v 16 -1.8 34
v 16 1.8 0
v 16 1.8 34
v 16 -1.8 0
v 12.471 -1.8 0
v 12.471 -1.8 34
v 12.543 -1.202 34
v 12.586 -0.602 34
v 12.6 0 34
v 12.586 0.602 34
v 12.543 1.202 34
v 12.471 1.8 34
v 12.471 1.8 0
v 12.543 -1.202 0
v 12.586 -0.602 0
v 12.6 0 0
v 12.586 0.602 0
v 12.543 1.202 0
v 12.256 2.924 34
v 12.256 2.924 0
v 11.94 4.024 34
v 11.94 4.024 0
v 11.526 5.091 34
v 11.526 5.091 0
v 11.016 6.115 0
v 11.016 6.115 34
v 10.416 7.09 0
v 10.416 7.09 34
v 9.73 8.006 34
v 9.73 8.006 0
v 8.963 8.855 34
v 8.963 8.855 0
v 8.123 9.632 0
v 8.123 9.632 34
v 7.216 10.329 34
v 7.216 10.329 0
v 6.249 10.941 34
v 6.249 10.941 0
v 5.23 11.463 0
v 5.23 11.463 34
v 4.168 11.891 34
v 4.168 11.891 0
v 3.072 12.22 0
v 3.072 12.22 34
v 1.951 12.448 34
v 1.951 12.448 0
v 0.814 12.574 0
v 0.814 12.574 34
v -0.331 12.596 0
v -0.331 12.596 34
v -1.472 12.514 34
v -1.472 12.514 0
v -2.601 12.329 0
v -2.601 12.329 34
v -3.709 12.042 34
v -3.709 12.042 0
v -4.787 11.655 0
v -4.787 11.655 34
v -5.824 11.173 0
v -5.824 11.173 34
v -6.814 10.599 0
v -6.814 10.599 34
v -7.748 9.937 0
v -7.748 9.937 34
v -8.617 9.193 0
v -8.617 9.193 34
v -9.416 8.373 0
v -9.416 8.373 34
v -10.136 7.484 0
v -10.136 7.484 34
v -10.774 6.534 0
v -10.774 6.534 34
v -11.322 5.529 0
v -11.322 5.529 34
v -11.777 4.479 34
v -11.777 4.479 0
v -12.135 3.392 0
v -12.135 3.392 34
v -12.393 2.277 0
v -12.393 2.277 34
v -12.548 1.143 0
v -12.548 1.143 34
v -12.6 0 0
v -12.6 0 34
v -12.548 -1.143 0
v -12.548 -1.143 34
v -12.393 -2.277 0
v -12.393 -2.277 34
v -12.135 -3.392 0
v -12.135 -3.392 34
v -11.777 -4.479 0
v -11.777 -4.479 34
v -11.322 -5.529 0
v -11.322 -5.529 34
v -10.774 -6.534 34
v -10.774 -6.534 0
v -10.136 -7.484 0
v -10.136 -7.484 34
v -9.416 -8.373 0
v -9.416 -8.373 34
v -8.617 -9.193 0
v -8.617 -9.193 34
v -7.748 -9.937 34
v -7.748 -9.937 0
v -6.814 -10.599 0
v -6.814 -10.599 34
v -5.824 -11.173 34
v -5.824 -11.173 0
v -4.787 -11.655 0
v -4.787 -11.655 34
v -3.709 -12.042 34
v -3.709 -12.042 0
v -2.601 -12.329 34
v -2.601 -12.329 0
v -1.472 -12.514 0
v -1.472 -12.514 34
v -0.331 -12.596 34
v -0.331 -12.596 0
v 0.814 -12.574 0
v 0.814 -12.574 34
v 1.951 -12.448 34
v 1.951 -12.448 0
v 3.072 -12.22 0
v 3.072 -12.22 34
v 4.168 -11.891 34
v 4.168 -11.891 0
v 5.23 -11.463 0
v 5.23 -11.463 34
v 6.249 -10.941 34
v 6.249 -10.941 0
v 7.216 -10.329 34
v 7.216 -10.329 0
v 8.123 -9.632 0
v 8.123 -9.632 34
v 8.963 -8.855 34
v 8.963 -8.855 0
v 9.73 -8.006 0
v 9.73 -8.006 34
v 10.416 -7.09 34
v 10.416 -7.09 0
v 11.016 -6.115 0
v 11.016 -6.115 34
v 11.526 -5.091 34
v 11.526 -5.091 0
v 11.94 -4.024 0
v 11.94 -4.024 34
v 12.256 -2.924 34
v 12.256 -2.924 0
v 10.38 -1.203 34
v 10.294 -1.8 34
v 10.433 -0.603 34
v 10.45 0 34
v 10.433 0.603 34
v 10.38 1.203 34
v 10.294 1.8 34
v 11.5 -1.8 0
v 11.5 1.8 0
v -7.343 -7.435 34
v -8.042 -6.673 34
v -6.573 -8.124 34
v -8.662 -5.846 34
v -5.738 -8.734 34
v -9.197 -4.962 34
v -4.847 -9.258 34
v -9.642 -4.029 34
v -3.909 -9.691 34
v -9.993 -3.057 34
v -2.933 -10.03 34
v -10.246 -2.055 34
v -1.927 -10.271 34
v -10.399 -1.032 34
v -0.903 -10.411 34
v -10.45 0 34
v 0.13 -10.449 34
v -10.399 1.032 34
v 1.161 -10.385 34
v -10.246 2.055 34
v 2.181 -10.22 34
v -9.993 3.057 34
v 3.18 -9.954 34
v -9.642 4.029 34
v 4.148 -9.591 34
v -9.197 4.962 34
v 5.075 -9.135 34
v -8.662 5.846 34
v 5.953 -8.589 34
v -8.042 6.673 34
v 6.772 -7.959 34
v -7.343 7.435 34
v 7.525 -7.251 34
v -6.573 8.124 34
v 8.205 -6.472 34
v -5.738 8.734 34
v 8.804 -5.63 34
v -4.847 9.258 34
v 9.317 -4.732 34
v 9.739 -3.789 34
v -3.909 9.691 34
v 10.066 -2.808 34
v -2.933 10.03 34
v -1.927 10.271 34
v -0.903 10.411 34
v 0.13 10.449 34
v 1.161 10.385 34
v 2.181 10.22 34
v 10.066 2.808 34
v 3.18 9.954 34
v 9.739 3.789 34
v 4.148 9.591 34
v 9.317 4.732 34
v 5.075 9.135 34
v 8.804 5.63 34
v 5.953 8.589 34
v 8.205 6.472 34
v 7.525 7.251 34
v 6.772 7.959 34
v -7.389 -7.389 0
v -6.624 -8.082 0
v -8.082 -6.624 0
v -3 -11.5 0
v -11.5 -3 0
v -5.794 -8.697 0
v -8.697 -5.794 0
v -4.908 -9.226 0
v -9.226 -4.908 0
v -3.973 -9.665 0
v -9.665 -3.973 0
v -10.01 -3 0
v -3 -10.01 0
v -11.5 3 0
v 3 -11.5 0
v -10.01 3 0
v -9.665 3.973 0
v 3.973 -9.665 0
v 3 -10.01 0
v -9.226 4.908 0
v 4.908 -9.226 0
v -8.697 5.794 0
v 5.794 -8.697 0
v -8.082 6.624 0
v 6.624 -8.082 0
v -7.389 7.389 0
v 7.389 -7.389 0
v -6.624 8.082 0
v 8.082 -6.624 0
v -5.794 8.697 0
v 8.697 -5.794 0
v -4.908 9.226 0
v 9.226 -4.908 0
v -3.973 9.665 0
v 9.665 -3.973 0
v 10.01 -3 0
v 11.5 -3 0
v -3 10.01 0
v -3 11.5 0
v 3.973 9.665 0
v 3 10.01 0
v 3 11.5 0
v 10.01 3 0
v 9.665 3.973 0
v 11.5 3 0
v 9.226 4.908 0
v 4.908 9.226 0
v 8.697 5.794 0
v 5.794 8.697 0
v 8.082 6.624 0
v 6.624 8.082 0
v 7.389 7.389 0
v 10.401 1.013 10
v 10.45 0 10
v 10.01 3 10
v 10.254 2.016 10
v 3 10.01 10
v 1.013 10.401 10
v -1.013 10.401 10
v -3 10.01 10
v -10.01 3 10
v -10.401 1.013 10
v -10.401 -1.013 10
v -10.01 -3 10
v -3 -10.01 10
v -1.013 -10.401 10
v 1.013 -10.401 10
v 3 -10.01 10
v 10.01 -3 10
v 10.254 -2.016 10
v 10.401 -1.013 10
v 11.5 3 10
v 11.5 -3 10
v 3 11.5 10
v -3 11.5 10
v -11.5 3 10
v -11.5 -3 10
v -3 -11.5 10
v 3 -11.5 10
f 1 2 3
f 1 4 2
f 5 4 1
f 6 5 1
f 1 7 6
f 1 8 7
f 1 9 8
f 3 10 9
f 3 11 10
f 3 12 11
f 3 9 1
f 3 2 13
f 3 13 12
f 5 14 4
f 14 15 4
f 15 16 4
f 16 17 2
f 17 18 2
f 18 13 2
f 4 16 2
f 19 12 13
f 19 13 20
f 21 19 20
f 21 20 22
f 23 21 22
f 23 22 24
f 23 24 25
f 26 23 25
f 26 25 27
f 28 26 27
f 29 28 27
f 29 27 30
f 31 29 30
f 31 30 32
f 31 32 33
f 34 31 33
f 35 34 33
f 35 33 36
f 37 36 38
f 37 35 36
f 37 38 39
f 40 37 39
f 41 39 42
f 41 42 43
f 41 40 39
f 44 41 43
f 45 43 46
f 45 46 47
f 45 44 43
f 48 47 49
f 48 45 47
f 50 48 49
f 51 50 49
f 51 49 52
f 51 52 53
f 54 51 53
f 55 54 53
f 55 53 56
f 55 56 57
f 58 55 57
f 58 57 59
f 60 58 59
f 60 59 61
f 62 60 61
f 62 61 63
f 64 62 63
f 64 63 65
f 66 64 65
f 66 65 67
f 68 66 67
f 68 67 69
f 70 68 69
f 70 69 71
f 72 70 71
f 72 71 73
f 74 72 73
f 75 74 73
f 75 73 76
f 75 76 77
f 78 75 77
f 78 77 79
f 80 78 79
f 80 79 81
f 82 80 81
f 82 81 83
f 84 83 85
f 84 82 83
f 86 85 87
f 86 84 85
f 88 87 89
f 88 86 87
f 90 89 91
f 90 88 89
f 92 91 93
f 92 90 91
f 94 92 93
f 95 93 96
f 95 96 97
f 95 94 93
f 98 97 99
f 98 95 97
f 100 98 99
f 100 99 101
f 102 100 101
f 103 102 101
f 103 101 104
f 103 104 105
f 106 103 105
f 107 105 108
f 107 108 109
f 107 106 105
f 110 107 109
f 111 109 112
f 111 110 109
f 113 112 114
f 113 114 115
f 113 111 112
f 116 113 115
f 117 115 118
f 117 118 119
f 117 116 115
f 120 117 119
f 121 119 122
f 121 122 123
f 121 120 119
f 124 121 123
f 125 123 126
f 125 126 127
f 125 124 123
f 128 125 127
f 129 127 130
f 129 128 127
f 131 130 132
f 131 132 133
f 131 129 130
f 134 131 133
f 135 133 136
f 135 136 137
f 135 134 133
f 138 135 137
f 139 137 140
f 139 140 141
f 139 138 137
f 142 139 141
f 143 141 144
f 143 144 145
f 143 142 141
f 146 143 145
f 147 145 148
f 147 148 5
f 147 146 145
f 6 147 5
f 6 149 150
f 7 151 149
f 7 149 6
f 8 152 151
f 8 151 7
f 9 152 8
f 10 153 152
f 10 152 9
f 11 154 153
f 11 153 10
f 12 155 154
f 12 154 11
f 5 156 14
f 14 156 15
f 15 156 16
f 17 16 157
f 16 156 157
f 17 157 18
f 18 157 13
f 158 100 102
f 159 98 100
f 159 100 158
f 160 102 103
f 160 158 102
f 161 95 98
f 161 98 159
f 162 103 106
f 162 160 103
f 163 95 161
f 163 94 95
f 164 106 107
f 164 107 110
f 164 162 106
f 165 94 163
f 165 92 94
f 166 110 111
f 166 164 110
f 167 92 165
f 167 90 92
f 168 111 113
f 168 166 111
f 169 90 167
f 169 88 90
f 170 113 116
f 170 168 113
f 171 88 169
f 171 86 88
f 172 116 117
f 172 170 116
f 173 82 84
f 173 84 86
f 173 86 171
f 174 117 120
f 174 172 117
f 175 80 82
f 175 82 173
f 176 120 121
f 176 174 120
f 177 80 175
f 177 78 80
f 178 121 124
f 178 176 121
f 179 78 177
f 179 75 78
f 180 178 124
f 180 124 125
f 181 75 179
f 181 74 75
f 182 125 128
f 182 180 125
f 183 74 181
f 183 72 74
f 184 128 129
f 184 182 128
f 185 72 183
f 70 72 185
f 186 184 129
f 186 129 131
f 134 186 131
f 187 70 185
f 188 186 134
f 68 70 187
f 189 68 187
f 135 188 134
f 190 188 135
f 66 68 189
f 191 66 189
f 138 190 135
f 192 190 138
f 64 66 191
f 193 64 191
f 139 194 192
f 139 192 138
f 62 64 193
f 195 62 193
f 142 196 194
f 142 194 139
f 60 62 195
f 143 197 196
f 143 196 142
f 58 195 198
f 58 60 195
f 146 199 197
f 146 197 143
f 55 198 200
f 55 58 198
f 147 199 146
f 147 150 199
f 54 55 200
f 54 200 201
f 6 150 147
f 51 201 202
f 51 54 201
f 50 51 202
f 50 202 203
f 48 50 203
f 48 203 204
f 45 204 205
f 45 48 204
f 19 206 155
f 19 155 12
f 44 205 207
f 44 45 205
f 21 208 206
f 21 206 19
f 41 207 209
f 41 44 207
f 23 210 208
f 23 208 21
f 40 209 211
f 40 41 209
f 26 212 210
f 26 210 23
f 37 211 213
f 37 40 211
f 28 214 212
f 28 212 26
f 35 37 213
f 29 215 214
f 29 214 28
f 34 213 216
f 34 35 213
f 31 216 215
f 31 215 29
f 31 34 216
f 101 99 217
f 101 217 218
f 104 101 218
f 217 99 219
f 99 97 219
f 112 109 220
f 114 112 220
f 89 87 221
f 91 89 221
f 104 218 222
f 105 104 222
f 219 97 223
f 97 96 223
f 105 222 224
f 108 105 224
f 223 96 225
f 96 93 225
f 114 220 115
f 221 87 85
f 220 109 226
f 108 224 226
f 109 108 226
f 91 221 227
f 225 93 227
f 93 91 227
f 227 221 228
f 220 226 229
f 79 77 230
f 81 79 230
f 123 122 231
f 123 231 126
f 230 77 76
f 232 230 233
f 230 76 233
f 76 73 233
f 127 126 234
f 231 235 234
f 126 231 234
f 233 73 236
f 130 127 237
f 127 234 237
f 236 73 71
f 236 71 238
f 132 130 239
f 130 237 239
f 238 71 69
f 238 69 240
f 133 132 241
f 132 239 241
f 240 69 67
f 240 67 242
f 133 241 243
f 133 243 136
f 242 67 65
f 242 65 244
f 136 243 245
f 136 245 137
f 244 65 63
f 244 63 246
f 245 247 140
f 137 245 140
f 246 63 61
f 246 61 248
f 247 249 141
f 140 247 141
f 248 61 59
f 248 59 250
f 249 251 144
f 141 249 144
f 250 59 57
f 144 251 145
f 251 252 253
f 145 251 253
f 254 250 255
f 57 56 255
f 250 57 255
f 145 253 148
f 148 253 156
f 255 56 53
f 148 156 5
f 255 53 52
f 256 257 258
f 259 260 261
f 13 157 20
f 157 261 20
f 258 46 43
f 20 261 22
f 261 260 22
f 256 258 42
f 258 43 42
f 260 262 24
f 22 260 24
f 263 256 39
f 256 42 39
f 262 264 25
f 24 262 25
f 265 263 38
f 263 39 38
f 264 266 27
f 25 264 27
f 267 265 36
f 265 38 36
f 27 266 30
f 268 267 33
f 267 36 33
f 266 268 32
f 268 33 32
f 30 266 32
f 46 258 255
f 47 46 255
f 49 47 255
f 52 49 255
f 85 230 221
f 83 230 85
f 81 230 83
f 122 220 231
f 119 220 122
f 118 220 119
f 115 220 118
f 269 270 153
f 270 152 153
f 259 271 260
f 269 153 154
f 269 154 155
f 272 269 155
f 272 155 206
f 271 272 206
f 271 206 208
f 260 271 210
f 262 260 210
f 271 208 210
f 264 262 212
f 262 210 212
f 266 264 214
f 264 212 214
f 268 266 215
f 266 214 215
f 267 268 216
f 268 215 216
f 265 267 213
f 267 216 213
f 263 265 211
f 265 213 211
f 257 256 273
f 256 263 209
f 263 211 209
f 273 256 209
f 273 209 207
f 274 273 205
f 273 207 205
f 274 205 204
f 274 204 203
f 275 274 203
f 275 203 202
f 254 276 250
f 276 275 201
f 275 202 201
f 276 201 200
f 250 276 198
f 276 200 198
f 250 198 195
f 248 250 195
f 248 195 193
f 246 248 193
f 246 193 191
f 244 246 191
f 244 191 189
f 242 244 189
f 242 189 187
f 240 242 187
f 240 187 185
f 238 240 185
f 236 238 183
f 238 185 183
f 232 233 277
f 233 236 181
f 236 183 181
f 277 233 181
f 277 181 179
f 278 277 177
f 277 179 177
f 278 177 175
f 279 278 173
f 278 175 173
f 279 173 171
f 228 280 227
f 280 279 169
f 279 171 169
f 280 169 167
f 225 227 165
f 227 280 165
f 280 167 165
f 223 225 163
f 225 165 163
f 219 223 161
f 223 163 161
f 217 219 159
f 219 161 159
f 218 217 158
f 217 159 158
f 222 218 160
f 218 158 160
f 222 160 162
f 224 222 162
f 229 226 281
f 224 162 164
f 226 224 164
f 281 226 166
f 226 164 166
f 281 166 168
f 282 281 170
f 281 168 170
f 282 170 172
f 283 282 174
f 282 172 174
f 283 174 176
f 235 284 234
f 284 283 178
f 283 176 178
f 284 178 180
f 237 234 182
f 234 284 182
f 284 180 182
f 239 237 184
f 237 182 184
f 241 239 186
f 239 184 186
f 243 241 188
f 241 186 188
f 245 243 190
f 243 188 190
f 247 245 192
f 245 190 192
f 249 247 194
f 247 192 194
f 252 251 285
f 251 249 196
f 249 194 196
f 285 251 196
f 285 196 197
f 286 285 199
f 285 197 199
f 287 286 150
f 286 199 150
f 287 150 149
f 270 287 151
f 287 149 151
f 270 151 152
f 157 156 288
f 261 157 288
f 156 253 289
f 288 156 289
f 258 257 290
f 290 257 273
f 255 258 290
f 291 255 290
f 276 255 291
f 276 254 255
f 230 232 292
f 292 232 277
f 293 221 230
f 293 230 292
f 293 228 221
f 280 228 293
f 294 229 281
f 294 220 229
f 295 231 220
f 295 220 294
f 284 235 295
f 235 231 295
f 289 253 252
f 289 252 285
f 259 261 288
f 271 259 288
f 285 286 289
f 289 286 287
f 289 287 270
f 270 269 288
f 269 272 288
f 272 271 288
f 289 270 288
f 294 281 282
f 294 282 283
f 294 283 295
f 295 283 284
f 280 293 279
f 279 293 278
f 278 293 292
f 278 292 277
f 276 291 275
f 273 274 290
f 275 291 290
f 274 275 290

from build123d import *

# Parameters (mm, degrees)
BOX001_W          = 23
BOX001_H          = 6
BOX001_DEPTH      = 10
BOX002_W          = 6
BOX002_H          = 23
BOX002_DEPTH      = 10
CYLINDER001_R     = 10.45
CYLINDER001_DEPTH = 100
CYLINDER_R        = 12.6
CYLINDER_DEPTH    = 34
BOX_W             = 10
BOX_H             = 3.6
BOX_DEPTH         = 34


with BuildPart() as cube:
    # Box001 → Box001 (new body)
    with BuildSketch(Plane(origin=(-11.5, -3, 0), x_dir=(1, 0, 0), z_dir=(0, 0, 1))):
        with Locations((11.5, 3)):
            Rectangle(BOX001_W, BOX001_H)
    extrude(amount=BOX001_DEPTH)


with BuildPart() as cube001:
    # Box002 → Box002 (new body)
    with BuildSketch(Plane(origin=(-3, -11.5, 0), x_dir=(1, 0, 0), z_dir=(0, 0, 1))):
        with Locations((3, 11.5)):
            Rectangle(BOX002_W, BOX002_H)
    extrude(amount=BOX002_DEPTH)


with BuildPart() as cylinder:
    # Cylinder001 → Cylinder001 (new body)
    with BuildSketch(Plane.XY):
        Circle(CYLINDER001_R)
    extrude(amount=CYLINDER001_DEPTH)


with BuildPart() as outside:
    # Cylinder → Cylinder (new body)
    with BuildSketch(Plane.XY):
        Circle(CYLINDER_R)
    extrude(amount=CYLINDER_DEPTH)


with BuildPart() as final:
    # Box → Box (new body)
    with BuildSketch(Plane(origin=(6, -1.8, 0), x_dir=(1, 0, 0), z_dir=(0, 0, 1))):
        with Locations((5, 1.8)):
            Rectangle(BOX_W, BOX_H)
    extrude(amount=BOX_DEPTH)

    # Fusion: union Outside
    add(outside.part)

    # Cut: cut Cylinder
    add(cylinder.part, mode=Mode.SUBTRACT)

    # Cut001: cut Cube001
    add(cube001.part, mode=Mode.SUBTRACT)

    # Cut002: cut Cube
    add(cube.part, mode=Mode.SUBTRACT)


solid = final.part
